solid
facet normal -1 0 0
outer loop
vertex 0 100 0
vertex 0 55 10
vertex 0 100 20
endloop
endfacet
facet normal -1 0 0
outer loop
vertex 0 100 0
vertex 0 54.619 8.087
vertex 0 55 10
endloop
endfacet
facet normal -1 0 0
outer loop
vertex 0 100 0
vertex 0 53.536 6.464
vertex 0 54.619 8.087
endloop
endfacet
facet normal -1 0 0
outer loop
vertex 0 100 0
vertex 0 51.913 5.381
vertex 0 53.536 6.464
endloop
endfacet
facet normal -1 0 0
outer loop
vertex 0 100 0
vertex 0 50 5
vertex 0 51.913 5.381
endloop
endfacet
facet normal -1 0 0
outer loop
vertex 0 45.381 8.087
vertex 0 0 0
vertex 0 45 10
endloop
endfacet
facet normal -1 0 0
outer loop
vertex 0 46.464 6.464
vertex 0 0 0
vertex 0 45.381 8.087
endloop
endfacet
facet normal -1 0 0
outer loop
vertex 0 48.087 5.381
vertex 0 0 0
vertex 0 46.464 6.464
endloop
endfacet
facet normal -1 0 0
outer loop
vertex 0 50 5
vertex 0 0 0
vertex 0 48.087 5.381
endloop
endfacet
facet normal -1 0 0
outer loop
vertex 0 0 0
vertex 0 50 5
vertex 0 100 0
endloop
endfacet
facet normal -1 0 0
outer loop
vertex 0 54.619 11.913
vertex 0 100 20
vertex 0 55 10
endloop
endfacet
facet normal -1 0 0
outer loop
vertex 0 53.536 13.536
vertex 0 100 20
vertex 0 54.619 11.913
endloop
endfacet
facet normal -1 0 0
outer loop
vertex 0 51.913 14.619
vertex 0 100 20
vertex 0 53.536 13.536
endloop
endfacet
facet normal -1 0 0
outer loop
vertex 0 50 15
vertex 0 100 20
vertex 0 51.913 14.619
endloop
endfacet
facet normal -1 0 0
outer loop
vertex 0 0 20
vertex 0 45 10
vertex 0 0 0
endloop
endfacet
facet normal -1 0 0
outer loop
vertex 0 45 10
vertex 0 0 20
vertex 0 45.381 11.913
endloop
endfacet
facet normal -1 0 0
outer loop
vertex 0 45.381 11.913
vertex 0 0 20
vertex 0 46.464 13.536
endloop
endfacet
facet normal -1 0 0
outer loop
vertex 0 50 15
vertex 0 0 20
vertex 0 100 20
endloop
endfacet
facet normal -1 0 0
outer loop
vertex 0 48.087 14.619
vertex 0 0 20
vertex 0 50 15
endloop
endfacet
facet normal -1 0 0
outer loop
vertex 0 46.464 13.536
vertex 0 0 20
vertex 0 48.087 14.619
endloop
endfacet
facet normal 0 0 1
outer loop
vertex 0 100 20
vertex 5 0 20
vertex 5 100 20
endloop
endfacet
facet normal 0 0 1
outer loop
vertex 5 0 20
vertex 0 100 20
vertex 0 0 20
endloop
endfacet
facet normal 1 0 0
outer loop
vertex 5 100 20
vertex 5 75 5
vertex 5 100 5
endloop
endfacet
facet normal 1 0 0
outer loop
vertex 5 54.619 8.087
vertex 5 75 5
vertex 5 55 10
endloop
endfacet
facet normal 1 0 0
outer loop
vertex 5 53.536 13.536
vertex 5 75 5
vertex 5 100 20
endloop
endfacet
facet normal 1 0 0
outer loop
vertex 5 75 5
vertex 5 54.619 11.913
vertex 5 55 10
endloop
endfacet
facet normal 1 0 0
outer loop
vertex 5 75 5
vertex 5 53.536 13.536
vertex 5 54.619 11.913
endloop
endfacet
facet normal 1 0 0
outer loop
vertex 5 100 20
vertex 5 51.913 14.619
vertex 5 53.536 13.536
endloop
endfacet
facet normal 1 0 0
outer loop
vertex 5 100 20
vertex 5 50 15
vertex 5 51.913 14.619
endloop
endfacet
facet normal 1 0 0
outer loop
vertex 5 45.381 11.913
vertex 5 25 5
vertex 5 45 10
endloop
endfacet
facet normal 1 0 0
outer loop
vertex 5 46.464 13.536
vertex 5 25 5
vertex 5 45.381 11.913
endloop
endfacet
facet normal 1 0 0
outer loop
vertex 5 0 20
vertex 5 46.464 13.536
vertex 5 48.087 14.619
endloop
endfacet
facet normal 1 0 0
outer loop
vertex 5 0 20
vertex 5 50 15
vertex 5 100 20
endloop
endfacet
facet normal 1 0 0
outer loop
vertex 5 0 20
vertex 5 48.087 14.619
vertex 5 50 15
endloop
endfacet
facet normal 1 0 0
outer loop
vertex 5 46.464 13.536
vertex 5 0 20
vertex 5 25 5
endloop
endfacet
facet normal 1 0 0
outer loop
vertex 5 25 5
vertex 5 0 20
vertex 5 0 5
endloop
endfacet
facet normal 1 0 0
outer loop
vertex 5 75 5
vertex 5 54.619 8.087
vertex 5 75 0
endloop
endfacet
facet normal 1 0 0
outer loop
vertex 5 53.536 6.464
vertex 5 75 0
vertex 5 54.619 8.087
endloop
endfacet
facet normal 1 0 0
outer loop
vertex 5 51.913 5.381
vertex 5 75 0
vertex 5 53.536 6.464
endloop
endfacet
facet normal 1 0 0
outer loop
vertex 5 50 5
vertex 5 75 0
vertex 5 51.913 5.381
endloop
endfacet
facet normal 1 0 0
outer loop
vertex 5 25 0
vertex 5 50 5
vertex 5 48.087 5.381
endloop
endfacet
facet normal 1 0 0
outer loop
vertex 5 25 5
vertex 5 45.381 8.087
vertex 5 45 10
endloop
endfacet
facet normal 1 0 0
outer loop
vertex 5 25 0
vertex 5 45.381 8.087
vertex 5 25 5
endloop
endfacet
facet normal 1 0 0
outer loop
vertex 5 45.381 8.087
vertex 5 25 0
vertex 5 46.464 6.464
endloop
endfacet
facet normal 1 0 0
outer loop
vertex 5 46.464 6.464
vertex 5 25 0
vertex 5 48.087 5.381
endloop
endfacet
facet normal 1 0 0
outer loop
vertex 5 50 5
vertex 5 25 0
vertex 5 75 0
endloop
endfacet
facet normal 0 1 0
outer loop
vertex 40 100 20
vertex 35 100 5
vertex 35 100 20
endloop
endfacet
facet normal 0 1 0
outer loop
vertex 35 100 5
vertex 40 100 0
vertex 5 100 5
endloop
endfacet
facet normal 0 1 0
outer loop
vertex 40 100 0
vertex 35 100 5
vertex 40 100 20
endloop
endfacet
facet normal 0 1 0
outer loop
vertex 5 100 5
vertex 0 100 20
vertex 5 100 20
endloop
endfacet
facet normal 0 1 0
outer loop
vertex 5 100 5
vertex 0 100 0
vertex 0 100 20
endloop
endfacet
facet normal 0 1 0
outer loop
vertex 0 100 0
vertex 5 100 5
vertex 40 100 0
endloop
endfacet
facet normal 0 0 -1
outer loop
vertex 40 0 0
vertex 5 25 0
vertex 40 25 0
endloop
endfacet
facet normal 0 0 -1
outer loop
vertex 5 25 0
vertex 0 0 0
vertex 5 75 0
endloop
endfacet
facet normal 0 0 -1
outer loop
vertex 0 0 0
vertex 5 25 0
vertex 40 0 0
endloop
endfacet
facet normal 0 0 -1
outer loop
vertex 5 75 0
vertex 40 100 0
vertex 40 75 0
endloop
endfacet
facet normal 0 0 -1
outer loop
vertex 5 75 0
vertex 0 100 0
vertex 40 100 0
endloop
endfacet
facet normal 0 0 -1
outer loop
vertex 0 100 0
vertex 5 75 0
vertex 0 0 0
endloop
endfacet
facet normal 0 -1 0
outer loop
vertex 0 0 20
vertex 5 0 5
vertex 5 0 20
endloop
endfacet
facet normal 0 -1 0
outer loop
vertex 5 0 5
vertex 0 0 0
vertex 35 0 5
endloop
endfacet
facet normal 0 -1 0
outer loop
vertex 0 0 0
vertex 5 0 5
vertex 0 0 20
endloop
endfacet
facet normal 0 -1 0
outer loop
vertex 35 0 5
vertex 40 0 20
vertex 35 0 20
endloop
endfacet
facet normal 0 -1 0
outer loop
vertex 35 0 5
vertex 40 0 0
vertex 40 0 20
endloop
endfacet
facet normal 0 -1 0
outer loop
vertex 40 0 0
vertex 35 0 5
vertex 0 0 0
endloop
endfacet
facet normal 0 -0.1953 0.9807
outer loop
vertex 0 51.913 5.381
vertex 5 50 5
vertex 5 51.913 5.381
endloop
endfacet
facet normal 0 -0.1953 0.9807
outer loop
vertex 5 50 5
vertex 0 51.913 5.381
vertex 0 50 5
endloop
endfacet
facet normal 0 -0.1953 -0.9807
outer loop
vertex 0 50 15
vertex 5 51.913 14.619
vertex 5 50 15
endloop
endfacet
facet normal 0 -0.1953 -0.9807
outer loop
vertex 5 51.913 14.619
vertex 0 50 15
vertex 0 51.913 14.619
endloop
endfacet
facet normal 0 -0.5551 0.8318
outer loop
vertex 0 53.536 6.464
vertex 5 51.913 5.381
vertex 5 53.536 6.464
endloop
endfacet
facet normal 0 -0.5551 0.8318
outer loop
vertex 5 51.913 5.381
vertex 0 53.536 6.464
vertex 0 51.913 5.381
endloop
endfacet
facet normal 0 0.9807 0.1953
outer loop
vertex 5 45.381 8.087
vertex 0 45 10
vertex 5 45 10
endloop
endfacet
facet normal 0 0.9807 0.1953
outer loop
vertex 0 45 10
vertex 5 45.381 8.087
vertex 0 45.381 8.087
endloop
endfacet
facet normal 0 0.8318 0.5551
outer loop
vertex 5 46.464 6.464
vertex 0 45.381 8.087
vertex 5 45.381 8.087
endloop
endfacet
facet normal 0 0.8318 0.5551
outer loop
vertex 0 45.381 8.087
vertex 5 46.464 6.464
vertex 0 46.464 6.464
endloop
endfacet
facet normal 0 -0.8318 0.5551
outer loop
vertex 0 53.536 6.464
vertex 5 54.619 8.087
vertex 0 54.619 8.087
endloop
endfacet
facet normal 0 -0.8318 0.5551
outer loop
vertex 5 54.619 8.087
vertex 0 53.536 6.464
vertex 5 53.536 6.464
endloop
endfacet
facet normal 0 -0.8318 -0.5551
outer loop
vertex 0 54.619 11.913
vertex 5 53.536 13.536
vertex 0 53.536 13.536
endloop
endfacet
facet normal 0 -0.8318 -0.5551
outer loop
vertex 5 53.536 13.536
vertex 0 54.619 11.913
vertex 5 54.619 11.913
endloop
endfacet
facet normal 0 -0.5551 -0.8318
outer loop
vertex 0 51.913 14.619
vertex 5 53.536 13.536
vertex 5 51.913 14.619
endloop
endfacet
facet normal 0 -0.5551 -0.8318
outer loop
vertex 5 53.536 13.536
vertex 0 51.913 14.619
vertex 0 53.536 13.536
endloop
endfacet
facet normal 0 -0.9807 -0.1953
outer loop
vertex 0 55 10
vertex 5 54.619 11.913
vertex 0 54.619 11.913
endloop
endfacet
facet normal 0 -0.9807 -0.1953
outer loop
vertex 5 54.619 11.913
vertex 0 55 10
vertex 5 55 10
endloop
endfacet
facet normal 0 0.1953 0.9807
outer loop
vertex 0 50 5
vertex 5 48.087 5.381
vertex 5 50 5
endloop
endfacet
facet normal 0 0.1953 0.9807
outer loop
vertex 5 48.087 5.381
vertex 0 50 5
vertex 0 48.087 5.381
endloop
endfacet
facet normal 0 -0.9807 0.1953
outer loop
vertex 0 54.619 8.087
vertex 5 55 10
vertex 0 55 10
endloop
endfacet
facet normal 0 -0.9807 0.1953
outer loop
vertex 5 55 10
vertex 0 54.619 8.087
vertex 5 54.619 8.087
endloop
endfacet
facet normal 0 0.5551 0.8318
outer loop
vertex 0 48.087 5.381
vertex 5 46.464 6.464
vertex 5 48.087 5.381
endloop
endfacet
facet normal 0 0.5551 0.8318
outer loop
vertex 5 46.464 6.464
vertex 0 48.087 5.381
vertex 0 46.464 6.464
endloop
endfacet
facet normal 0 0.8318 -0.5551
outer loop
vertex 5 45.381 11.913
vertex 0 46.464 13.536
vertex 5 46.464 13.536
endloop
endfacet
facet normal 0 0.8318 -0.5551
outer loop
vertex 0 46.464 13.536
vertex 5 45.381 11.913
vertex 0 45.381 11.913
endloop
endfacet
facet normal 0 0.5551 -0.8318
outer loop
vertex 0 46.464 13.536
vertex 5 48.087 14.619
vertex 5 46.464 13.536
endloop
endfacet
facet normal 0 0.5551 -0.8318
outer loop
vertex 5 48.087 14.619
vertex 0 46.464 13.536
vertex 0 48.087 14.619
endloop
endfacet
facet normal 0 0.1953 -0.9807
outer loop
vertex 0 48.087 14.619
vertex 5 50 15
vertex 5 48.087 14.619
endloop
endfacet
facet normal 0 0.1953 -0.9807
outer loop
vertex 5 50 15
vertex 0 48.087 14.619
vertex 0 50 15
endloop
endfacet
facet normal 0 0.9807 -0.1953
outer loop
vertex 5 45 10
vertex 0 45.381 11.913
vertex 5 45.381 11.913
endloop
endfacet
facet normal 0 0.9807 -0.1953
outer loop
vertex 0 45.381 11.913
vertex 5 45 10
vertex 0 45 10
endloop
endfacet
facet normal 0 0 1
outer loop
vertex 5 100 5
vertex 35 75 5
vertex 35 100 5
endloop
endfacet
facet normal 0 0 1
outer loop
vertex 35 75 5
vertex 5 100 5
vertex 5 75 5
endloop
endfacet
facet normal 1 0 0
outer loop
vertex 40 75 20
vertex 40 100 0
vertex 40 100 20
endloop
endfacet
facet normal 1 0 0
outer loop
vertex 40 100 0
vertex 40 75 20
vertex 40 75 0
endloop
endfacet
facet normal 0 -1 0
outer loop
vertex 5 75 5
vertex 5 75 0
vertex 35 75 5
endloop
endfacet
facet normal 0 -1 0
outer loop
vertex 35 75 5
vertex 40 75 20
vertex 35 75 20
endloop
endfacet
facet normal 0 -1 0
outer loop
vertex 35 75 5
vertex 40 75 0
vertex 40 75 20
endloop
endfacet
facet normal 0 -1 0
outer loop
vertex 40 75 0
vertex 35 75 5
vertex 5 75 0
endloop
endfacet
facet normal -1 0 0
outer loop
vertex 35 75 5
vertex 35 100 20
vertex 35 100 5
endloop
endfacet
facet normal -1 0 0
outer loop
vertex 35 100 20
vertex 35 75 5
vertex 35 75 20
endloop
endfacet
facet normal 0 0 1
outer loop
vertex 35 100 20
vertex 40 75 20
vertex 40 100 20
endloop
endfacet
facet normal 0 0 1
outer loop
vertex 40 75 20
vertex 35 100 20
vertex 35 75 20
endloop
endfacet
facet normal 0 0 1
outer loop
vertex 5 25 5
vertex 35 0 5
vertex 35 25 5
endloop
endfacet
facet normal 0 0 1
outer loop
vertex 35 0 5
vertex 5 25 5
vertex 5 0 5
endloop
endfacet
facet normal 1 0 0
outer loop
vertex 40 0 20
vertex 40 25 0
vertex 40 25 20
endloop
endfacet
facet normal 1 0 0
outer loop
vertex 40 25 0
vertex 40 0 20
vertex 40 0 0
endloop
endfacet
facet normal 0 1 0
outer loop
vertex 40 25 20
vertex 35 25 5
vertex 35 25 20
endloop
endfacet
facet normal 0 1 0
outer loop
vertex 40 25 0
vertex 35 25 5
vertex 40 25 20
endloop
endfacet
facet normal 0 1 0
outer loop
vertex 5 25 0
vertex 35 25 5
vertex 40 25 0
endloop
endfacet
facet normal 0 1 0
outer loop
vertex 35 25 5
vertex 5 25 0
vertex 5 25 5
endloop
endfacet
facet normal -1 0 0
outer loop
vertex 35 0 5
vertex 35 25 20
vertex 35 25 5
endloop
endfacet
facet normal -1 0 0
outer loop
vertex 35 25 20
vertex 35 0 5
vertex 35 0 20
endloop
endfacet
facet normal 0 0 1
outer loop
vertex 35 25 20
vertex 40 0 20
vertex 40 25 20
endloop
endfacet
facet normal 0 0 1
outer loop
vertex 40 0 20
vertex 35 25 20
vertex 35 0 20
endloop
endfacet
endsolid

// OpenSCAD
width_between = 50;

thickness = 5;
height = 20;
width_holder = 25;
length_holder = 30;
height_holder = 20;

difference() {
    cube([thickness, 2 * width_holder + width_between, height]);
    translate([0, (2 * width_holder + width_between) / 2, height / 2]) rotate([0, 90, 0]) cylinder(r=5, 100);
}

// Left
cube([2 * thickness + length_holder, width_holder, thickness]);
translate([thickness + length_holder, 0, 0]) cube([thickness, width_holder, height_holder]);

// Right
translate([0, width_holder + width_between, 0]) {
    cube([2 * thickness + length_holder, width_holder, thickness]);
    translate([thickness + length_holder, 0, 0]) cube([thickness, width_holder, height_holder]);
}
